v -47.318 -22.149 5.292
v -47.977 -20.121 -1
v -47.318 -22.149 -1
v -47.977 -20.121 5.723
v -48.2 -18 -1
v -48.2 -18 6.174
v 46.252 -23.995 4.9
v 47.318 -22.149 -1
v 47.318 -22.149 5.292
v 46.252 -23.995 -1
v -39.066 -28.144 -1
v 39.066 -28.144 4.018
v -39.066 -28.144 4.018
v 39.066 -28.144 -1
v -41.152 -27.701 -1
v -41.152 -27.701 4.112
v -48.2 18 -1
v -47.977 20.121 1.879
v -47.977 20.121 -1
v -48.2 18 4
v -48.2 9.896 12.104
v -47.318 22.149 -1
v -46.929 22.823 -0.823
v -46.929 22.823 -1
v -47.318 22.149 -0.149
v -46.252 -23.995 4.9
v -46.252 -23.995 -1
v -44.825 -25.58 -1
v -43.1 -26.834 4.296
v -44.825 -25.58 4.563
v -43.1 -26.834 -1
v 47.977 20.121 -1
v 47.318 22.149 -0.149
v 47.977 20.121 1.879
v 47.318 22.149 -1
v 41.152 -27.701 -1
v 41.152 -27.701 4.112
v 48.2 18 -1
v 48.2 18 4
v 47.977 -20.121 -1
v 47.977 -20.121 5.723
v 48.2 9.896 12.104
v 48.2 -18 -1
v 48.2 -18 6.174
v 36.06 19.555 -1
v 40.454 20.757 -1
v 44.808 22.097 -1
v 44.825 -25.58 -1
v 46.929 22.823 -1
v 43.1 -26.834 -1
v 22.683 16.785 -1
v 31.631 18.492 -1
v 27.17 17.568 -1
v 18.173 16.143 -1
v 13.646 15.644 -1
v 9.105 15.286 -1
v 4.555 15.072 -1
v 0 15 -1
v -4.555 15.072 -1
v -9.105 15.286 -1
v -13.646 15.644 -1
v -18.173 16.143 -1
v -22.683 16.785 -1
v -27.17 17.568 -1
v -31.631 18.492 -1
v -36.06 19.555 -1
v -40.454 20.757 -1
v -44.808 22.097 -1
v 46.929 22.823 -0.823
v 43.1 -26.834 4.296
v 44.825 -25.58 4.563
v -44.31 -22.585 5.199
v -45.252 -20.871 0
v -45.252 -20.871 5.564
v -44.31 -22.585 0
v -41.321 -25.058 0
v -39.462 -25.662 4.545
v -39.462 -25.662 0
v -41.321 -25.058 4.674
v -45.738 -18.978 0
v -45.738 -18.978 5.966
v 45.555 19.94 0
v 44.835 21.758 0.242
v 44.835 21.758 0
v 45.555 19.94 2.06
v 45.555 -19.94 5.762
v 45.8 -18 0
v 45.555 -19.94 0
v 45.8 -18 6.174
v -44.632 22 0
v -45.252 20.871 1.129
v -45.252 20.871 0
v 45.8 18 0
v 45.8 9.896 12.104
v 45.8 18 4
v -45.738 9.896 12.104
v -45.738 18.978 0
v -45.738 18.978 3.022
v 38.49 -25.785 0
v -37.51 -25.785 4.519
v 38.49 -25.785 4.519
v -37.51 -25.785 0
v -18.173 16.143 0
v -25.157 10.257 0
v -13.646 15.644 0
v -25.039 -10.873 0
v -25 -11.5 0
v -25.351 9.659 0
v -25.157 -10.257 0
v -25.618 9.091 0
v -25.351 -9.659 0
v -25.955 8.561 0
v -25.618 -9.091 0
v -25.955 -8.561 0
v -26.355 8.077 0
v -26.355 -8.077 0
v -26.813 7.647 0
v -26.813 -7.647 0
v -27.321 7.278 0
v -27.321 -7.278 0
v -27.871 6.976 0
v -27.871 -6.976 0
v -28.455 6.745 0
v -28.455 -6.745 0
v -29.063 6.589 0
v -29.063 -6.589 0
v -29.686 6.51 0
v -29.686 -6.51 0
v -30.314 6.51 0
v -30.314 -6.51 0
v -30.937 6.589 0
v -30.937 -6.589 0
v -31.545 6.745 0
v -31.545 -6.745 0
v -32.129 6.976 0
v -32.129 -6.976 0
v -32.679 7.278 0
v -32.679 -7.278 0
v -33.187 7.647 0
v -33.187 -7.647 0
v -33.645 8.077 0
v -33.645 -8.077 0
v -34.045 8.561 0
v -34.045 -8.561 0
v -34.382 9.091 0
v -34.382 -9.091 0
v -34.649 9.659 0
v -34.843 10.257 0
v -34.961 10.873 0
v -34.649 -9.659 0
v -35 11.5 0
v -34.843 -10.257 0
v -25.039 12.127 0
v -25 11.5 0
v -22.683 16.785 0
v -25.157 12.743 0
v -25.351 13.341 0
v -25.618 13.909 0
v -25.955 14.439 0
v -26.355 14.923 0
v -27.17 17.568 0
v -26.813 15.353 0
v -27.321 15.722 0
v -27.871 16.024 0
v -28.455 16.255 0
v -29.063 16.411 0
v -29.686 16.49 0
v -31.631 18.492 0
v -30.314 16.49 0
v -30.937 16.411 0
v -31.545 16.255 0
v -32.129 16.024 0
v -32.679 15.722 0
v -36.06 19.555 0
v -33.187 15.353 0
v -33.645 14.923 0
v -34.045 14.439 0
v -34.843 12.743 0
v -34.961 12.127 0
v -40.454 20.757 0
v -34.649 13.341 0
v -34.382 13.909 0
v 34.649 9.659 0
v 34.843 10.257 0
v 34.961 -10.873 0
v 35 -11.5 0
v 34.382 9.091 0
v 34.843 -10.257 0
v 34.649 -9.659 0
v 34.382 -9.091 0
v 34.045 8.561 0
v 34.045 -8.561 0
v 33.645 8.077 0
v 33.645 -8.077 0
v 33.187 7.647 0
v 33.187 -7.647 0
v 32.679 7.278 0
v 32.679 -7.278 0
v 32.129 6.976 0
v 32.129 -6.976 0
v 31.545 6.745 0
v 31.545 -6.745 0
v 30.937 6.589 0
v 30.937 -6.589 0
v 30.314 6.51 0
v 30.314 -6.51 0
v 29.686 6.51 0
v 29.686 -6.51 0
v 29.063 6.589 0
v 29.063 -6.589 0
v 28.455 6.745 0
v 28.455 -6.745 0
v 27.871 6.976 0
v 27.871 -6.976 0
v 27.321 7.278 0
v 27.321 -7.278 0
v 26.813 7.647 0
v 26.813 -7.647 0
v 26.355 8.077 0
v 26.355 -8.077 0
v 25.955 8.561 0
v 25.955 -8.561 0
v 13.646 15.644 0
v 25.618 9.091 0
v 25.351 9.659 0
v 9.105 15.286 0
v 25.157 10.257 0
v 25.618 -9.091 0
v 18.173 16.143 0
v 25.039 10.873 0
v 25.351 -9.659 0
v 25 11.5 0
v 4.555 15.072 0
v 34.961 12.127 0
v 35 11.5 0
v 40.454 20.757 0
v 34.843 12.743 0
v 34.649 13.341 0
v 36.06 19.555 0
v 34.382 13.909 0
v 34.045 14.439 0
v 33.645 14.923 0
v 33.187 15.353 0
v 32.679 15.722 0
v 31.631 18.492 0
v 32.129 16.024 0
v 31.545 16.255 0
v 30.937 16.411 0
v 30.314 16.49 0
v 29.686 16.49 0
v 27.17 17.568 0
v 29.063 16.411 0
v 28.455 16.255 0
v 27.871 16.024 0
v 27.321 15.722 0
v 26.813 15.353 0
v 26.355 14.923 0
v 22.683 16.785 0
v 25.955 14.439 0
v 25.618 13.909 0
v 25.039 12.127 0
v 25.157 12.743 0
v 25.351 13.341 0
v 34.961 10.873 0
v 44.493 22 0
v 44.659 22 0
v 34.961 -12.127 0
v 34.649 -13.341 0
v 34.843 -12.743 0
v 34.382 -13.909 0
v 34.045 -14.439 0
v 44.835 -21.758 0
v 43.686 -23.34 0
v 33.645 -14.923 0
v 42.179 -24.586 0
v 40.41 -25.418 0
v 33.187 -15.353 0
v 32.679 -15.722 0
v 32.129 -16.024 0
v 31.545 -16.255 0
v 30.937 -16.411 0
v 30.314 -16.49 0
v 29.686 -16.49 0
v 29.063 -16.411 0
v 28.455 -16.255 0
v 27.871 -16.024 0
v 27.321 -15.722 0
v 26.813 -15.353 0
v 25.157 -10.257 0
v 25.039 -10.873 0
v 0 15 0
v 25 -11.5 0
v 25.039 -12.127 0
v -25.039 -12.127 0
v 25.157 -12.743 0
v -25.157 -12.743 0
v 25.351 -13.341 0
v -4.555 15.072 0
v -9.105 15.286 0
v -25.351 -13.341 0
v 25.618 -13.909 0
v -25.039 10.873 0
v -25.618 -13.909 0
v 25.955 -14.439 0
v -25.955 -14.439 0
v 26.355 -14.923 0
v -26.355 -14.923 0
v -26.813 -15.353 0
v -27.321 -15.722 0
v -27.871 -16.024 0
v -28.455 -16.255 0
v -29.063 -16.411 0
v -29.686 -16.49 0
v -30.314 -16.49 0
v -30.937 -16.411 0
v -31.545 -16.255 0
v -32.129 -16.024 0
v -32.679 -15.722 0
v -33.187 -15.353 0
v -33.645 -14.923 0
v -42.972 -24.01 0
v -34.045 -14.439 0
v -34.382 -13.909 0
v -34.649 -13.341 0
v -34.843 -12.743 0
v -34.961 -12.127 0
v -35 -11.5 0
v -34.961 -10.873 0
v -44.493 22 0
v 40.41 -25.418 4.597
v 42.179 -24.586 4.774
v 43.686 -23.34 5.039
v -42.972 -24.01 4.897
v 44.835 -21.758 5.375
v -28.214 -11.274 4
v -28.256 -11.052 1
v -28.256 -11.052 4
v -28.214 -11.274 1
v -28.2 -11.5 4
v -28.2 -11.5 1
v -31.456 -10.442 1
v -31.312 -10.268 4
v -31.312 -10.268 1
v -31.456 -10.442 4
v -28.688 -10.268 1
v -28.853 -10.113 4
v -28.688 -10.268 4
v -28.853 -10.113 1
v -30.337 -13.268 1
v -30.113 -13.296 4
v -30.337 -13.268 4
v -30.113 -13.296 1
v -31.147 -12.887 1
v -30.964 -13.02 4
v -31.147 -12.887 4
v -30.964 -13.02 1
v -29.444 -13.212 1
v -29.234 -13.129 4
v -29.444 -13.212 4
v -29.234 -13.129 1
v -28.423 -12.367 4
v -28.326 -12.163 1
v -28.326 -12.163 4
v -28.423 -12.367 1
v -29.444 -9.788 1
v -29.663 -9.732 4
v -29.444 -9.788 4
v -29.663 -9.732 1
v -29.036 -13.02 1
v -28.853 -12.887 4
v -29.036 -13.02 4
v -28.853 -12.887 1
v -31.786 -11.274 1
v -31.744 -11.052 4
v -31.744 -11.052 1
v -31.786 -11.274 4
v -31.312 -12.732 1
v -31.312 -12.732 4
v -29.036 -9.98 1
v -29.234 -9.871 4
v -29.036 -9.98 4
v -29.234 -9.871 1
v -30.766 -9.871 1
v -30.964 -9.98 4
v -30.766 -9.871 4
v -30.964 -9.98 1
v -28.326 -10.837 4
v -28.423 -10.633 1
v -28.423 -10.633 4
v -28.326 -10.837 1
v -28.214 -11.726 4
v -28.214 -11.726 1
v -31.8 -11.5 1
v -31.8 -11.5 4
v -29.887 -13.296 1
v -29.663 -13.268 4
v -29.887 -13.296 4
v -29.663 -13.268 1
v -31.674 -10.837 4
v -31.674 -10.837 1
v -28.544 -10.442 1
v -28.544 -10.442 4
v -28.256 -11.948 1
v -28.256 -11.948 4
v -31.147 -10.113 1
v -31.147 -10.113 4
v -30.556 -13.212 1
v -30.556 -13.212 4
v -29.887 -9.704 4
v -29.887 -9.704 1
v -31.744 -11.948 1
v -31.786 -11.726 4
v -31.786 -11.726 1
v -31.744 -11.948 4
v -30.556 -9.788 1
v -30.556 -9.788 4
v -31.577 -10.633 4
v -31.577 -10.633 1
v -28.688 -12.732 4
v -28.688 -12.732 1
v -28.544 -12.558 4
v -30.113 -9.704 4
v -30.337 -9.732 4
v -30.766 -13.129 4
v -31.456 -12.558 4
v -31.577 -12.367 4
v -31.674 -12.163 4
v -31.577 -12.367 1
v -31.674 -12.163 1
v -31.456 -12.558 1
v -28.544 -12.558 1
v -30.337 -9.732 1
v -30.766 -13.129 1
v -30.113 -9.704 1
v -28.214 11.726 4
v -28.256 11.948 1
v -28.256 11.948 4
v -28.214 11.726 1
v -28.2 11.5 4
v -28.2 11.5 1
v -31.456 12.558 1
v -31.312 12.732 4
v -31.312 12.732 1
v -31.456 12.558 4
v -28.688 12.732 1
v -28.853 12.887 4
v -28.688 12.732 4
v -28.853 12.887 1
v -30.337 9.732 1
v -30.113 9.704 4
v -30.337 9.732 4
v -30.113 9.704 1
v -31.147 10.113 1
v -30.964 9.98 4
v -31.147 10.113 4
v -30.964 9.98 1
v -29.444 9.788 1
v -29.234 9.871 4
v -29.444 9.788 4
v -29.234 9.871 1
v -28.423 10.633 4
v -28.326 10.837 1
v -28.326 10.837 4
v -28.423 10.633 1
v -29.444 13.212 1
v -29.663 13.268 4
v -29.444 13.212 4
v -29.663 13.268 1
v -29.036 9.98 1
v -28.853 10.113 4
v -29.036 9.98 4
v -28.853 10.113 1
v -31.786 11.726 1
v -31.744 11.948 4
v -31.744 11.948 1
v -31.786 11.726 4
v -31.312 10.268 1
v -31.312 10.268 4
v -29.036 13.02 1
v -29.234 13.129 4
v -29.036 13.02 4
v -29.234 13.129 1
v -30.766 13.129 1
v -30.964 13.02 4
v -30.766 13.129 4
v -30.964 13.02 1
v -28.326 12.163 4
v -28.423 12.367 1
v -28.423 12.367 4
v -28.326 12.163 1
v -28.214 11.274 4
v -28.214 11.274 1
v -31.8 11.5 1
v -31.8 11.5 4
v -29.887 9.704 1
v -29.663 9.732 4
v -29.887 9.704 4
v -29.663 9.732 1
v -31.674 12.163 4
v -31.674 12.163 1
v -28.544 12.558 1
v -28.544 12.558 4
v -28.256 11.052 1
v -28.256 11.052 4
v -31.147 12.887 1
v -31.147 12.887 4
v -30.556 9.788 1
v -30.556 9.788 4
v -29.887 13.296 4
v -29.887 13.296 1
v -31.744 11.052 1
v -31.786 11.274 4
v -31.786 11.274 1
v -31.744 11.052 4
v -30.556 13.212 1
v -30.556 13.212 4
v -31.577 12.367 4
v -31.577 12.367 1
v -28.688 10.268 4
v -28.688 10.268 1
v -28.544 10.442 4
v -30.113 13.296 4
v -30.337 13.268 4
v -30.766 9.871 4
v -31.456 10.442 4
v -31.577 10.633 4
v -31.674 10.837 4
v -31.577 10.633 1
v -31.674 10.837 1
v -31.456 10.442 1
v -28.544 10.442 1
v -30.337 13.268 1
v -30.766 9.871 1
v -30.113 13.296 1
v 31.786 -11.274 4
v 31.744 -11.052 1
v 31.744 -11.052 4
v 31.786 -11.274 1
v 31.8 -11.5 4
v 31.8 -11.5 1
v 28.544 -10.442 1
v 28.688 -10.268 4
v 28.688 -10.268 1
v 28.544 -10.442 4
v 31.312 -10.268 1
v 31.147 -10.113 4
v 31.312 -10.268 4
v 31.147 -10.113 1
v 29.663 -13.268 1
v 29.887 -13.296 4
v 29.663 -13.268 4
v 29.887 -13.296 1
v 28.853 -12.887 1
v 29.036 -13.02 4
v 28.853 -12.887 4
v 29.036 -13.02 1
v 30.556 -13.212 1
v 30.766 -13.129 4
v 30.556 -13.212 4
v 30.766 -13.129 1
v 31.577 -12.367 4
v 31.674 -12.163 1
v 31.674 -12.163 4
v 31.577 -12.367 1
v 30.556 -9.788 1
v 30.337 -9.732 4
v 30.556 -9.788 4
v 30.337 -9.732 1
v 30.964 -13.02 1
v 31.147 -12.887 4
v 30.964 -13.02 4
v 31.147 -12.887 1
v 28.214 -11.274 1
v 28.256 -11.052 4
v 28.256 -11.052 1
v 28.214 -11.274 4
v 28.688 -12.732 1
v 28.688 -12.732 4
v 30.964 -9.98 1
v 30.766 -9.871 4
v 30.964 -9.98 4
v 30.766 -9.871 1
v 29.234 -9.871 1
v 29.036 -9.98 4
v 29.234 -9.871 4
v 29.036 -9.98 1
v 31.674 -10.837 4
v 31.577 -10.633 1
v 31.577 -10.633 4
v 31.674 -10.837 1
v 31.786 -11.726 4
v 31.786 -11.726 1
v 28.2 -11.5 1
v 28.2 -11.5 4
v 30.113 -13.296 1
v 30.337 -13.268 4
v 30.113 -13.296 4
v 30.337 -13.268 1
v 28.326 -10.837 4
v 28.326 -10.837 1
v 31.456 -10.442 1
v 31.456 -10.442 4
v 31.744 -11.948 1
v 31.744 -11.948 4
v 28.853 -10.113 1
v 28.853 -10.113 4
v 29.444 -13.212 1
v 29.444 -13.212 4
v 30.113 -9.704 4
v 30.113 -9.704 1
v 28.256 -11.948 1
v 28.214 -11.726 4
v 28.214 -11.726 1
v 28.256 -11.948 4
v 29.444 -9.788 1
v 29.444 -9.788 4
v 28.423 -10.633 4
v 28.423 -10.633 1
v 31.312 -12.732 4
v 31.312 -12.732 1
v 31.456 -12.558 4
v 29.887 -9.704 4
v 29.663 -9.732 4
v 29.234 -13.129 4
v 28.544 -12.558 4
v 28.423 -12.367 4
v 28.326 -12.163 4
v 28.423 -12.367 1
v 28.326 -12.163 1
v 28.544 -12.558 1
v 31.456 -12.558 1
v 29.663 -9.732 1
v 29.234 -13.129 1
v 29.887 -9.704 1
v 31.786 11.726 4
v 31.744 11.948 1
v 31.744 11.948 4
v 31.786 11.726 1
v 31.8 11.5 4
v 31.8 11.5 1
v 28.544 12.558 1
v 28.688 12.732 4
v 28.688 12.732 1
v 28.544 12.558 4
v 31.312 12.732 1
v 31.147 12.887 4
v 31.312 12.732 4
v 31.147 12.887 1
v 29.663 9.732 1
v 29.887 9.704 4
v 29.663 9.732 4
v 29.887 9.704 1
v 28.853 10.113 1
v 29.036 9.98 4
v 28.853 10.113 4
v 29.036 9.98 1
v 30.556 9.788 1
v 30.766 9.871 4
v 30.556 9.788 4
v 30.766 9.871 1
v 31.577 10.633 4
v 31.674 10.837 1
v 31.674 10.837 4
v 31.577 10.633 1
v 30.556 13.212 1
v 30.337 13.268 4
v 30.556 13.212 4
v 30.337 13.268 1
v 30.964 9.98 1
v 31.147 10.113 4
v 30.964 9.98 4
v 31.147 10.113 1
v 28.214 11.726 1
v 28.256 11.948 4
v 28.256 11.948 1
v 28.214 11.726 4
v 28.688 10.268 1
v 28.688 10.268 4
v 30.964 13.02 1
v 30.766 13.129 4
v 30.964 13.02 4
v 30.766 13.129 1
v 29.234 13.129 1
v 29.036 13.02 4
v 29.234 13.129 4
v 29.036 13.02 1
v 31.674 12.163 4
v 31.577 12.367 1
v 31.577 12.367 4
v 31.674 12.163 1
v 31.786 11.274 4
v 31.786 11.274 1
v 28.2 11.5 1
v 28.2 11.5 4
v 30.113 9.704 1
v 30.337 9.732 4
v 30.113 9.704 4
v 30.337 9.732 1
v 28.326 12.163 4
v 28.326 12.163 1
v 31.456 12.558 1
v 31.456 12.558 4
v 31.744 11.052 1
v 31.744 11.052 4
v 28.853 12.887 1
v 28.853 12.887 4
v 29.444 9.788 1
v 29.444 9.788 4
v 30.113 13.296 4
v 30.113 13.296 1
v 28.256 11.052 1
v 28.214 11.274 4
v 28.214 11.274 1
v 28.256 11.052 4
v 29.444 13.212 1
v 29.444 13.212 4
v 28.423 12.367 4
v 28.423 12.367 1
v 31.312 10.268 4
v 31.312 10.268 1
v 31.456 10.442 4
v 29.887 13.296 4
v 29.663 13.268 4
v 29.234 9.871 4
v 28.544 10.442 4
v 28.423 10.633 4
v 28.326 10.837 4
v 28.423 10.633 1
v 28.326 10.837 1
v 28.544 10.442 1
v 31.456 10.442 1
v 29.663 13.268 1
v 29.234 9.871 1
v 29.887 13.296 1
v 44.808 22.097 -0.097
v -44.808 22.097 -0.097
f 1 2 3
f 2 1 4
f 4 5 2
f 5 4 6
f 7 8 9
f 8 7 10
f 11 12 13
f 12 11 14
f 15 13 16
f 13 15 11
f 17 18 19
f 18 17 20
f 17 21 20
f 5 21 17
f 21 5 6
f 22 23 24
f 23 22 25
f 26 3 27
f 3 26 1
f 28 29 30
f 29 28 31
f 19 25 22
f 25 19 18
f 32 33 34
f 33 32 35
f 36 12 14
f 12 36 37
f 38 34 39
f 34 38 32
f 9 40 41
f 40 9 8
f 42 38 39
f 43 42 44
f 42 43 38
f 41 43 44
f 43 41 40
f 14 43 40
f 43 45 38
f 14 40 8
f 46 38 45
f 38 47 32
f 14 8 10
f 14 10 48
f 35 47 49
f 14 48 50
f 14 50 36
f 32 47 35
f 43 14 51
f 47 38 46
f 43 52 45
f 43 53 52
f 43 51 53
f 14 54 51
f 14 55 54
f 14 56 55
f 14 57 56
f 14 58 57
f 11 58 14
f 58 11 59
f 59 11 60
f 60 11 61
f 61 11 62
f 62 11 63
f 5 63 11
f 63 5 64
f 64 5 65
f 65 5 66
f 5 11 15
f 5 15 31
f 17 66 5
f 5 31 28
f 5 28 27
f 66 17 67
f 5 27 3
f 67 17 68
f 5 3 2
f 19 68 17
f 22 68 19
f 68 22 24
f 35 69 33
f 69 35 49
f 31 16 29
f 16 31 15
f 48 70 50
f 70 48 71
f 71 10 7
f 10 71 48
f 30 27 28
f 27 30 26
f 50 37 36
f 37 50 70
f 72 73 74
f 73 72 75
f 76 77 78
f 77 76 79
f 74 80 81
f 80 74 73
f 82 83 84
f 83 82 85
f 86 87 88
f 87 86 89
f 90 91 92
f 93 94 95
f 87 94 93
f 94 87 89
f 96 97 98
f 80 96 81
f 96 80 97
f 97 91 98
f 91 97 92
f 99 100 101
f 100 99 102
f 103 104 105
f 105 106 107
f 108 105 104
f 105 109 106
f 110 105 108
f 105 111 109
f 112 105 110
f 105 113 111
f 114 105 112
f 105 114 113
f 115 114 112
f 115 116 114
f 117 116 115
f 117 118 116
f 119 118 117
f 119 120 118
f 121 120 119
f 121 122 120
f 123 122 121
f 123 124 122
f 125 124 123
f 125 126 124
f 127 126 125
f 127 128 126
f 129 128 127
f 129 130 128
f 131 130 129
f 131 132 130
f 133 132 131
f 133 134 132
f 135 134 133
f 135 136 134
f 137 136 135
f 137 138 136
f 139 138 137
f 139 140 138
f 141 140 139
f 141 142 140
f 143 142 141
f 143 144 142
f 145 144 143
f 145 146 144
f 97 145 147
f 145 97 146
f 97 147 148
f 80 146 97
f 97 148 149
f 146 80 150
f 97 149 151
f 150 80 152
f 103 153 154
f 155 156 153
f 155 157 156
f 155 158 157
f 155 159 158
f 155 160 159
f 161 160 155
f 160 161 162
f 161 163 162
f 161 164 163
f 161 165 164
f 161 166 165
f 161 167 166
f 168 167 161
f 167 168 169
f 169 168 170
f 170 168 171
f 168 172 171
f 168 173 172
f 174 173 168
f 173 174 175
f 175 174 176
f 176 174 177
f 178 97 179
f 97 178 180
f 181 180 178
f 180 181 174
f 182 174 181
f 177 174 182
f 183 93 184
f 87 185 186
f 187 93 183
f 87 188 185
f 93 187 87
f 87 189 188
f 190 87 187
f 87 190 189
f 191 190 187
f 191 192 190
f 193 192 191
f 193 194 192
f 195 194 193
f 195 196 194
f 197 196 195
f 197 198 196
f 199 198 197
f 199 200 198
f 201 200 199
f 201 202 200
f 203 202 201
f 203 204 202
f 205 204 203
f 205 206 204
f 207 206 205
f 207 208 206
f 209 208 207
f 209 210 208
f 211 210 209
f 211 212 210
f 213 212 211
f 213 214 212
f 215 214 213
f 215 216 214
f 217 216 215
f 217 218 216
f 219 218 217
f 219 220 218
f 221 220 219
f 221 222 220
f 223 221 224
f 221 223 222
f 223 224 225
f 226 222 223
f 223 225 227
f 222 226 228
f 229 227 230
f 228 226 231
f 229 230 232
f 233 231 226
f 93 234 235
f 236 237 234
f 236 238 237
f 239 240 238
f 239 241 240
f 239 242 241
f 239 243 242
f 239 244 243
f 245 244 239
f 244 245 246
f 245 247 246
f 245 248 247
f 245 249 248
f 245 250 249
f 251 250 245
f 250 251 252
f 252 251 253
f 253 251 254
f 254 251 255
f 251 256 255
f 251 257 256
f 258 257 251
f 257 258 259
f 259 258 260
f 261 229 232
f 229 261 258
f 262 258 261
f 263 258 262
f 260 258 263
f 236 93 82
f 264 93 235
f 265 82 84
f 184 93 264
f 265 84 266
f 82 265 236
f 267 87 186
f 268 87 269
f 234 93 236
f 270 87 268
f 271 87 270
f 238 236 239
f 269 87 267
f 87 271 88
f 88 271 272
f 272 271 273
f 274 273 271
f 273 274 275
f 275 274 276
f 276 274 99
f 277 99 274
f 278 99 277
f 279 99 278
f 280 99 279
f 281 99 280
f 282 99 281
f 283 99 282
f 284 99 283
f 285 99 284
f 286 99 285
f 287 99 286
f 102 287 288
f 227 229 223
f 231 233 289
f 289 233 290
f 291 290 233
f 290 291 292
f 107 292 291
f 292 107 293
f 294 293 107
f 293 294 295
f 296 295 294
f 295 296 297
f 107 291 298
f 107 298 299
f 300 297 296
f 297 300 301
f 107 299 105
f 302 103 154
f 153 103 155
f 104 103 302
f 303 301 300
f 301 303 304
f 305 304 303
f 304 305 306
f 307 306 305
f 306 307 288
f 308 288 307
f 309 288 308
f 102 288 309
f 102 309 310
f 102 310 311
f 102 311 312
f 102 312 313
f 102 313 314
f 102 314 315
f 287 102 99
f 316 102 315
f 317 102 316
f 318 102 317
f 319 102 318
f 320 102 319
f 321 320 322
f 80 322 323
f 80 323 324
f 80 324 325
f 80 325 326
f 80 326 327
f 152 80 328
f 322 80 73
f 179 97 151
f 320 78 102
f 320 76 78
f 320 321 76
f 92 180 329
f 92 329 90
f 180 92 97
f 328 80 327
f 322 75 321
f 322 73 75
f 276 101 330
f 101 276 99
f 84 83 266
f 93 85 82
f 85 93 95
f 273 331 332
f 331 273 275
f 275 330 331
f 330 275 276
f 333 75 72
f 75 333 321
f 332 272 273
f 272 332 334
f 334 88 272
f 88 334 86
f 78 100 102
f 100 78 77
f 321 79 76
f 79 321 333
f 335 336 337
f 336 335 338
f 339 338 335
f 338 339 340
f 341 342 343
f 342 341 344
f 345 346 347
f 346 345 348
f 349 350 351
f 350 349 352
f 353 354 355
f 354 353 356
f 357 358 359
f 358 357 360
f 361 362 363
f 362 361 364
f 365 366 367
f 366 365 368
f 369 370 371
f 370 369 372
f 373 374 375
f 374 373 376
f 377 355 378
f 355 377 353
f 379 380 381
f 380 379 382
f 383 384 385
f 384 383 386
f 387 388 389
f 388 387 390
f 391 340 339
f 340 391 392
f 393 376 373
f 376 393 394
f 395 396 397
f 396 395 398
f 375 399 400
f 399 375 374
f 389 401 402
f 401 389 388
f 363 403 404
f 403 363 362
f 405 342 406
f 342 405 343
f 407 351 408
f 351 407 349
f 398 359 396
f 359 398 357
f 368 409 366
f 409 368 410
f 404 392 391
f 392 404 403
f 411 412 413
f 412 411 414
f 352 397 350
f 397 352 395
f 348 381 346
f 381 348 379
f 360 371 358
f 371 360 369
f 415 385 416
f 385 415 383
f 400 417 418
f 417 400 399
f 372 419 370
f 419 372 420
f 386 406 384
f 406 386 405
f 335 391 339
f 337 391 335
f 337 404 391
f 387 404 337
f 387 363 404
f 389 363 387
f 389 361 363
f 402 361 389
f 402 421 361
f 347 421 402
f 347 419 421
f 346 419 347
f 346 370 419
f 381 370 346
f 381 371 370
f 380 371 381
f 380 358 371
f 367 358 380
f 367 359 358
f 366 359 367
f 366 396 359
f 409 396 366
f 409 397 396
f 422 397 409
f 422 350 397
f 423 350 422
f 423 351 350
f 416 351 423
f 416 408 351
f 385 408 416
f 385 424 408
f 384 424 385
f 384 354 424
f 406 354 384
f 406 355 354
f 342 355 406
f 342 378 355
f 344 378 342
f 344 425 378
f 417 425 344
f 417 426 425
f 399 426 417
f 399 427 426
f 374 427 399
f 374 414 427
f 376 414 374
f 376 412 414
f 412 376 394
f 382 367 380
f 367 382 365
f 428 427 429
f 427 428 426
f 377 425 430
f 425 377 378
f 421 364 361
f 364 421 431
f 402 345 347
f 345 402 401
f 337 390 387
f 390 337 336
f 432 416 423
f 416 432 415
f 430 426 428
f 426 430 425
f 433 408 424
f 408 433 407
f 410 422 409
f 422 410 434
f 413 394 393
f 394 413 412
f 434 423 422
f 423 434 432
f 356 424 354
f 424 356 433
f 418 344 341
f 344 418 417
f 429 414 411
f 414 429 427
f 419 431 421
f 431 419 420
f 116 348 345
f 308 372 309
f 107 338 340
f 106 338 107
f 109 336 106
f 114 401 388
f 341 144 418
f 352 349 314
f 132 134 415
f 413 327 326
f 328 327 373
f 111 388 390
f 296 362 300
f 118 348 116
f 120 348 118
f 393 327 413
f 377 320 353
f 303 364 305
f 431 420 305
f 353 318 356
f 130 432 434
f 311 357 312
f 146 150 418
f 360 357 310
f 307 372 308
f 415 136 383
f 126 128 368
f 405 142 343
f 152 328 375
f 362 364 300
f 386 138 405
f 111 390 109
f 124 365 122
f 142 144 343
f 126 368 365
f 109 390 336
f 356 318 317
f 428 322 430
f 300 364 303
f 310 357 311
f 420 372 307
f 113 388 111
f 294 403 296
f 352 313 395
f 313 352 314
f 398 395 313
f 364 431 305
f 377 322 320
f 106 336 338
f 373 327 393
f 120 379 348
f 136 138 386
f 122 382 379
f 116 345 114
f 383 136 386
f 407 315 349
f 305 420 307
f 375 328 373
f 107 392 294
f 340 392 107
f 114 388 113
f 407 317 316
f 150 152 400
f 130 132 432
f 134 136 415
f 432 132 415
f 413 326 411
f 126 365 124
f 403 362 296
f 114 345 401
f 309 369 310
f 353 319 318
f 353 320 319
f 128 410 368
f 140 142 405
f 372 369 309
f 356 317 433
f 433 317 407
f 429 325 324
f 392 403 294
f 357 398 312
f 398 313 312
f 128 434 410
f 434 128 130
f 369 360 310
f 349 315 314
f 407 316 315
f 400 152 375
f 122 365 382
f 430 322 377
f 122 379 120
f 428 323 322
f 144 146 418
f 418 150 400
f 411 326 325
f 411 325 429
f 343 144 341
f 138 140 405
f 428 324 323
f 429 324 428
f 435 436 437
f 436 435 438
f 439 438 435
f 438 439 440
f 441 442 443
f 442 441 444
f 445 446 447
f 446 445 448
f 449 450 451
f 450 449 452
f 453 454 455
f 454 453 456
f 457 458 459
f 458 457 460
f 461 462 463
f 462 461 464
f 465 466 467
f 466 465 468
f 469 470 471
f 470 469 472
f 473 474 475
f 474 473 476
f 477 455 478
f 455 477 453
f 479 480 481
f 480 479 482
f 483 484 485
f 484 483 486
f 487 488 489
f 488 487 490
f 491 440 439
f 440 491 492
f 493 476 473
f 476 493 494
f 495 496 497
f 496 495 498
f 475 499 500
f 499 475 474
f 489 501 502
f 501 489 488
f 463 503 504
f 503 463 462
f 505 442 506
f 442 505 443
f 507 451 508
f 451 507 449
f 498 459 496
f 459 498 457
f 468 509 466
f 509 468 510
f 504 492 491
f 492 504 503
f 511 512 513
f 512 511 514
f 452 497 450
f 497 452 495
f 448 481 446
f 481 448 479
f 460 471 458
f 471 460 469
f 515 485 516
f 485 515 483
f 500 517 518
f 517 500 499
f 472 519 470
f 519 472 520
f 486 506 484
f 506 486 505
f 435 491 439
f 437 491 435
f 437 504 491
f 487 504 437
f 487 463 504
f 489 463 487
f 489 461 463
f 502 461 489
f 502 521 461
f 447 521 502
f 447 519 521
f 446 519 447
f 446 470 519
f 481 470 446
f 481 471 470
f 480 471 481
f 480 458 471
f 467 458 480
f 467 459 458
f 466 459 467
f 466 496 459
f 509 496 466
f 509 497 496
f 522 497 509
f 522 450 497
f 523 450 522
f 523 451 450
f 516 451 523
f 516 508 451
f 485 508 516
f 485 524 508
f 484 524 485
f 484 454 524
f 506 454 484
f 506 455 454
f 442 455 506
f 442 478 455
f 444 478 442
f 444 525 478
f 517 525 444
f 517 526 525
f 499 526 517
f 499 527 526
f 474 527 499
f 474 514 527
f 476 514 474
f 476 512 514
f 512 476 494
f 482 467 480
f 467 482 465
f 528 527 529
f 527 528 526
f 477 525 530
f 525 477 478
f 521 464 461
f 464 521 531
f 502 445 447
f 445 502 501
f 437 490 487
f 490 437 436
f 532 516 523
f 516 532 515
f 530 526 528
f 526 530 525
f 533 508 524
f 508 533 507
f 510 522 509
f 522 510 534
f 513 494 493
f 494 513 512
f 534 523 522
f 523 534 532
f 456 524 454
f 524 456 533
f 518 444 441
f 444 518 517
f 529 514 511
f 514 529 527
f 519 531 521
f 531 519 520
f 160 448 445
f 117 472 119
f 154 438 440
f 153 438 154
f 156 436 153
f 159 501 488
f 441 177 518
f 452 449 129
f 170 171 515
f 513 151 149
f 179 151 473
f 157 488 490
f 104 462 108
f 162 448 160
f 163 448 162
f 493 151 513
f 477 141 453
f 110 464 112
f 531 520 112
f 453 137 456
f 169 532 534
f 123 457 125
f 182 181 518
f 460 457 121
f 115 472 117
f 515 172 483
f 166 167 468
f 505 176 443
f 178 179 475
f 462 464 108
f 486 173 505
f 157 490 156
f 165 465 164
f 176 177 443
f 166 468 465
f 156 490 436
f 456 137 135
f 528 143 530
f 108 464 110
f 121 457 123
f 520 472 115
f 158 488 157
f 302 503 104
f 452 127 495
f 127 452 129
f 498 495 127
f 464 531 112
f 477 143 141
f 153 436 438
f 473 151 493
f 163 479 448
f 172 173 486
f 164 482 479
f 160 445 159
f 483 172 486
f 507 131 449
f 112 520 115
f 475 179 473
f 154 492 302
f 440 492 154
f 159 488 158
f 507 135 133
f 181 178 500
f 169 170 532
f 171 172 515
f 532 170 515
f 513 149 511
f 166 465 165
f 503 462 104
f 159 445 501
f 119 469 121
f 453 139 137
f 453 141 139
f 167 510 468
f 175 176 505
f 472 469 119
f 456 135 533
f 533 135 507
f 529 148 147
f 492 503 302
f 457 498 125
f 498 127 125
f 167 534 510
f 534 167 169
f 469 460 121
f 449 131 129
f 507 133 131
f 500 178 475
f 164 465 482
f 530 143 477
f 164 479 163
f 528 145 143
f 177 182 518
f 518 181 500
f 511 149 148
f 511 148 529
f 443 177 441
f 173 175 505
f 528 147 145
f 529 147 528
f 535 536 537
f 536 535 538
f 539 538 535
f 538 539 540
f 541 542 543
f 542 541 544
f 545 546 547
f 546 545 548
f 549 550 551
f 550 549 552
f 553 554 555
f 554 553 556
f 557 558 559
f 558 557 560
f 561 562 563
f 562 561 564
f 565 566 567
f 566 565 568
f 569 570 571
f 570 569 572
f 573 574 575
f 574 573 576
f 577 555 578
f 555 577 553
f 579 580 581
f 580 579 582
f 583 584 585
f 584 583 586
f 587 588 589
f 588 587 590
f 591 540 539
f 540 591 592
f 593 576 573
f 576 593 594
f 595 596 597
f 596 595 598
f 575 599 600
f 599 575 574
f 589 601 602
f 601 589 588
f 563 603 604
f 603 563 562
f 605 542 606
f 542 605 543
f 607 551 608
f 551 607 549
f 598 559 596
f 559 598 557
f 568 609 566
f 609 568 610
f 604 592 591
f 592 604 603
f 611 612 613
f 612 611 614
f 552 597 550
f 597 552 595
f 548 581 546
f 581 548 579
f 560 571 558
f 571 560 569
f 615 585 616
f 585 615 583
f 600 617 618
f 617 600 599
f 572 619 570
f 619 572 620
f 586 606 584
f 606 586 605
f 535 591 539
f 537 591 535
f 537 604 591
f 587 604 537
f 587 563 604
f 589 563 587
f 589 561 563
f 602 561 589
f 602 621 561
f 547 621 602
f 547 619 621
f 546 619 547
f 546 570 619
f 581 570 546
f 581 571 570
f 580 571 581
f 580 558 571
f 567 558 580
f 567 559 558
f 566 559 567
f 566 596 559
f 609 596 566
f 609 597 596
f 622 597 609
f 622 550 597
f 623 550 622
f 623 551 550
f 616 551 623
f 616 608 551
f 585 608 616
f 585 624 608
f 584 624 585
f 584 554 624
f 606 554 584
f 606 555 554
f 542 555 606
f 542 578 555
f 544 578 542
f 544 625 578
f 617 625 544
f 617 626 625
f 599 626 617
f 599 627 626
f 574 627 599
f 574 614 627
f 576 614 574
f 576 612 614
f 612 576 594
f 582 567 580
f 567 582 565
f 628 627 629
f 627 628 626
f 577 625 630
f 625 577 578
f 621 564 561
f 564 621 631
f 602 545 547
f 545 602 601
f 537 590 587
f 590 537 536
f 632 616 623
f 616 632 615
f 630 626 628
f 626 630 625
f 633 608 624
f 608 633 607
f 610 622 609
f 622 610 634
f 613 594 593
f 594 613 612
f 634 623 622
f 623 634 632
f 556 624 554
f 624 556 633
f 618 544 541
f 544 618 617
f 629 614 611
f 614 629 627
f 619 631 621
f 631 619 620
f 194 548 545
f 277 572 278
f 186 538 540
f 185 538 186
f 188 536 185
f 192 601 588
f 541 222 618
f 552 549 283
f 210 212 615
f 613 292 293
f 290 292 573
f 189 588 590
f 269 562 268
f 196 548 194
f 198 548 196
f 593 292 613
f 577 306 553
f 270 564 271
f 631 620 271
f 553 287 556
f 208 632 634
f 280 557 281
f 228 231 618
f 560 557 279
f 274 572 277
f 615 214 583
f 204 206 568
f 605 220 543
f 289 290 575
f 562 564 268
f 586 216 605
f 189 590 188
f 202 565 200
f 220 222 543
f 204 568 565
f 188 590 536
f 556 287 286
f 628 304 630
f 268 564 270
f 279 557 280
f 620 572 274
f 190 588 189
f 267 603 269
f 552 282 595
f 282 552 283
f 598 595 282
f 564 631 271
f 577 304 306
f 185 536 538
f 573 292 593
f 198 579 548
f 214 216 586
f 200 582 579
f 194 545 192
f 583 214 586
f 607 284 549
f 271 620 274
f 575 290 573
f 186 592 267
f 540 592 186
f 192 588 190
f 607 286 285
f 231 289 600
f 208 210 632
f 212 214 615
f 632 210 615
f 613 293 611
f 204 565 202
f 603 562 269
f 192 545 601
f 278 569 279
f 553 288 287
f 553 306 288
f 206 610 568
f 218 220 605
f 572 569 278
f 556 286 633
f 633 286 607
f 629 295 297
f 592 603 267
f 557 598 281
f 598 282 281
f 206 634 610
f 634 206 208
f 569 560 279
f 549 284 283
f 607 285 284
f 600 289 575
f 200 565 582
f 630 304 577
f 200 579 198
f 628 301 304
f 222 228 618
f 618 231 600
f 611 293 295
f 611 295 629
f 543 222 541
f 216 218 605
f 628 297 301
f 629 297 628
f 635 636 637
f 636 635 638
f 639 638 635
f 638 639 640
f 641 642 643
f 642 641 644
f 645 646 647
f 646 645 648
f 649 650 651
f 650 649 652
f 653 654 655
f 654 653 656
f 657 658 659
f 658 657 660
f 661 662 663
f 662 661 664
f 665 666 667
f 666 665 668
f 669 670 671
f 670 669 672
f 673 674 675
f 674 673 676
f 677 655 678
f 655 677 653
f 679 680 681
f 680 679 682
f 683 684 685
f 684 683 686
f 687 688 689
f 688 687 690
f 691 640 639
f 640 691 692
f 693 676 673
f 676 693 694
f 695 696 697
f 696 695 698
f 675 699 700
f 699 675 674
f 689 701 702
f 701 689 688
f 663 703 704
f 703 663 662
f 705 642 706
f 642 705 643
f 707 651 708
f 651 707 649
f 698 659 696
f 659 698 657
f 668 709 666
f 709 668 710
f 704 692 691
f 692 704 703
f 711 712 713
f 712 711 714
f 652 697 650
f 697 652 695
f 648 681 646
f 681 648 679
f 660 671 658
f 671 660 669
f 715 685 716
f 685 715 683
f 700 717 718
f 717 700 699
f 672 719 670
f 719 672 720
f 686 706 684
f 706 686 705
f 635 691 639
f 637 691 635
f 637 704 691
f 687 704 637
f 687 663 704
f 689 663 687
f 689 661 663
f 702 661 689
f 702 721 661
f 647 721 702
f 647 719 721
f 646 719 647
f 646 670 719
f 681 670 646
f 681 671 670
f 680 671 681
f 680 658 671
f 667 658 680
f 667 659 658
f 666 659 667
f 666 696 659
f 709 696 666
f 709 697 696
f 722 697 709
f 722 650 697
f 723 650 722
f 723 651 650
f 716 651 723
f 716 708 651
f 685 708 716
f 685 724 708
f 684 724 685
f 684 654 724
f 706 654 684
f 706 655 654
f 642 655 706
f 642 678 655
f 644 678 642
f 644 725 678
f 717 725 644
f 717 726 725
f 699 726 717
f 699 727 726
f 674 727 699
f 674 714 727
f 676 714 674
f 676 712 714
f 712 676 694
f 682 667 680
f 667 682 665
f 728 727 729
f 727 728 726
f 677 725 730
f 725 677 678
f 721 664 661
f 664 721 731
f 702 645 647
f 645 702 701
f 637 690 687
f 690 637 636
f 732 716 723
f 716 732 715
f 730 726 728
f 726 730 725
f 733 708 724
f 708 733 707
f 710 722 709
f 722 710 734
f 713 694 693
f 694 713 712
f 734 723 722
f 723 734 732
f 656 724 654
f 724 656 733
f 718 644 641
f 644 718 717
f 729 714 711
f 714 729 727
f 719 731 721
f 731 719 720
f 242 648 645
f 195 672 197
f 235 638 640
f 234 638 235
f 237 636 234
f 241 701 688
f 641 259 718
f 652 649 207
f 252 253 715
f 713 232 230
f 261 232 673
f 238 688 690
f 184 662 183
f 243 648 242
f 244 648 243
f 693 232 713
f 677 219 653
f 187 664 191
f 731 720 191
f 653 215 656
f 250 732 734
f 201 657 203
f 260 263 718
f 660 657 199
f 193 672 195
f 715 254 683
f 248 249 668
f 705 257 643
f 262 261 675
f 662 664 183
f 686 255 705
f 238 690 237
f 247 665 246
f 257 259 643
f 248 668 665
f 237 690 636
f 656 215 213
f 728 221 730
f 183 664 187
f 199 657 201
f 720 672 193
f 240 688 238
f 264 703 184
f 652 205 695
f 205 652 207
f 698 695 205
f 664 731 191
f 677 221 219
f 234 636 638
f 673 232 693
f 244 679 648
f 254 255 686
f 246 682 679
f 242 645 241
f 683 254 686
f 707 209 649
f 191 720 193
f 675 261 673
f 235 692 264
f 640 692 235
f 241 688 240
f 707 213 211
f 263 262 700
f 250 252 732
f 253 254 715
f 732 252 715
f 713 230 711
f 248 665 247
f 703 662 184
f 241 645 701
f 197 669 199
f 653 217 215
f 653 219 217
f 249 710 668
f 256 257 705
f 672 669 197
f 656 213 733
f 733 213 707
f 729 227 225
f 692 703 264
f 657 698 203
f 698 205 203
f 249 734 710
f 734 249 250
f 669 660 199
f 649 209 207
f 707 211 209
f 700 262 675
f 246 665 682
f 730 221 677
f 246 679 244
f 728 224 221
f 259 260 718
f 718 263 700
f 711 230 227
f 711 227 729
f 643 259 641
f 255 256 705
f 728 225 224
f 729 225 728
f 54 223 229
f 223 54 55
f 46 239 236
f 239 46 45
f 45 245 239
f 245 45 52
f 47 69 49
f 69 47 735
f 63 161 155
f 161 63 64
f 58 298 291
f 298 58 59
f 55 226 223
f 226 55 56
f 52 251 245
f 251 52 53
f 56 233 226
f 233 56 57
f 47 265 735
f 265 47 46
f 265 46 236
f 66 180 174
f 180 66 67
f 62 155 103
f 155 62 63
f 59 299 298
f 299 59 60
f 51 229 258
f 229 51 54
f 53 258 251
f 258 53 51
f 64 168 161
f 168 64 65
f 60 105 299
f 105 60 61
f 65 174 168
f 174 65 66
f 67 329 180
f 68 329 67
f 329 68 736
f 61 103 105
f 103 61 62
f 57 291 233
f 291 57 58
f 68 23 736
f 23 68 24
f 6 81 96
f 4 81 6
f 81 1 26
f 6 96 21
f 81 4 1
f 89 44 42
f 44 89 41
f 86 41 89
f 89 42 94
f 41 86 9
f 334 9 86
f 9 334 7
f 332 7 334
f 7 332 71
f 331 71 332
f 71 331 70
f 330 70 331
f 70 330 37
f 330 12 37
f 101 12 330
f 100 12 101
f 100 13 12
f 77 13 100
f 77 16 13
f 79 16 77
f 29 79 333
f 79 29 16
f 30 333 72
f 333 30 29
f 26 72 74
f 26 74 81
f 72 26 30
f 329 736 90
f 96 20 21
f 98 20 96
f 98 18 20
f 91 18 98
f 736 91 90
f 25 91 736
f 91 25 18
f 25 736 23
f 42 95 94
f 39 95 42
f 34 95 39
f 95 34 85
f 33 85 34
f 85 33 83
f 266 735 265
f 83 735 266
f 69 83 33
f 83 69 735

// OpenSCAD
// file: lib/utils.scad
module xz_toward_y()
{
	scale([1, 1, -1])
	rotate([-90,0,0])
	children();
}

module anchor(dim, anchor=[0,0,0])
{
	translate([-(1+anchor.x)*dim.x/2, -(1+anchor.y)*dim.y/2, -(1+anchor.z)*dim.z/2])
	children();
}

module block(dim, anchor=[0,0,0])
{
	anchor(dim, anchor)
	cube(dim);
}

module rounded_block_z(dim, anchor=[0,0,0], r=0)
{
	anchor(dim, anchor)
	linear_extrude(dim.z)
	hull()
	for (p=[ [r,r], [dim.x-r, r], [dim.x-r, dim.y-r], [r, dim.y-r] ] )
	translate(p)
	circle(r);
}

module rounded_block_y(dim, anchor=[0,0,0], r=0)
{
	anchor(dim, anchor)
	xz_toward_y()
	linear_extrude(dim.y)
	hull()
	for (p=[ [r,r], [dim.x-r, r], [dim.x-r, dim.z-r], [r, dim.z-r] ] )
	translate(p)
	circle(r);
}

module chamfer_block_y(dim, anchor=[0,0,0], r=0)
{
	anchor(dim, anchor)
	hull()
	{
		translate([r,0,0])
		cube([dim.x-r*2, dim.y, dim.z]);

		translate([0,0,r])
		cube([dim.x, dim.y, dim.z-r*2]);
	}
}

module chamfer_block_z(dim, anchor=[0,0,0], r=0)
{
	anchor(dim, anchor)
	hull()
	{
		translate([r,0,0])
		cube([dim.x-r*2, dim.y, dim.z]);

		translate([0,r,0])
		cube([dim.x, dim.y-r*2, dim.z]);
	}
}

module chamfer_block(dim, anchor=[0,0,0], r=0)
{
	anchor(dim, anchor)
	hull()
	{
		translate([r,r,0])
		cube([dim.x-r*2, dim.y-r*2, dim.z]);

		translate([r,0,r])
		cube([dim.x-r*2, dim.y, dim.z-r*2]);

		translate([0,r,r])
		cube([dim.x, dim.y-r*2, dim.z-r*2]);
	}
}

module at_grid(c,r,pitch,anchor=[0,0,0])
{
	dim=[(c-1)*pitch,(r-1)*pitch,1];
	a=[anchor[0],anchor[1],-1];
	anchor(dim,a)
	for(x=[0:c-1])
	for(y=[0:r-1])
	translate([x*pitch,y*pitch,0])
	children();
}

module ngon_outer(n,h,r)
{
	cylinder(h,r=r, $fn=n);
}

module ngon_inner(n,h,r)
{
	a=360/n/2;
	r_cyl = r/cos(a);
	rotate([0,0,a])
	cylinder(h,r=r_cyl, $fn=n);
}


module ngon_cone_outer(n,h,r1,r2)
{
	cylinder(h,r1=r1,r2=r2, $fn=n);
}

module ngon_cone_inner(n,h,r1,r2)
{
	a=360/n/2;
	r1_cyl = r1/cos(a);
	r2_cyl = r2/cos(a);
	rotate([0,0,a])
	cylinder(h,r1=r1_cyl,r2=r2_cyl, $fn=n);
}

module preview()
{
	if ($preview)
	children();
}
// main file
e=.001;

include <lib/utils.scad>

bin_d = 290;
bin_center=[0,bin_d/2+15,0];

hole_d=4;
leg_margin=.2;
leg_h=4;

pedal_h=15;

dx=60;
dy=23;

r=7;
margin=.8;
border=2.4;

w=90;
d=50;

thickness=8;

module binshape()
{
	translate(bin_center)
	translate([0,0,-100])
	cylinder(200,d=bin_d,$fn=200);
}

module at_holes()
{
	for (x=[-dx/2,dx/2])
	for (y=[-dy/2,dy/2])
	translate([x,y,0])
	children();
}


module pedal_shape()
{
	difference()
	{
		translate([0,0,-1])
		rounded_block_z([w+2*(margin+border),d+2*(margin+border),pedal_h], [0,0,-1], r+margin+border);

		rounded_block_z([w+2*margin,d+2*margin,pedal_h], [0,0,-1], r+margin);
	}
	at_holes()
	{
	cylinder(h=leg_h,r=hole_d/2-leg_margin,$fn=50);
	cylinder(h=1,r1=5,r2=hole_d/2-leg_margin,$fn=50);
	}
}

module pedal()
{
	difference()
	{
		pedal_shape();
		binshape();
		translate([0,0,10])
		rotate([12,0,0])
		block([100,100,20],[0,0,-1]);

		translate([0,22,0])
		rotate([45,0,0,])
		block([100,100,100],[0,-1,0]);
	}
}

pedal();
